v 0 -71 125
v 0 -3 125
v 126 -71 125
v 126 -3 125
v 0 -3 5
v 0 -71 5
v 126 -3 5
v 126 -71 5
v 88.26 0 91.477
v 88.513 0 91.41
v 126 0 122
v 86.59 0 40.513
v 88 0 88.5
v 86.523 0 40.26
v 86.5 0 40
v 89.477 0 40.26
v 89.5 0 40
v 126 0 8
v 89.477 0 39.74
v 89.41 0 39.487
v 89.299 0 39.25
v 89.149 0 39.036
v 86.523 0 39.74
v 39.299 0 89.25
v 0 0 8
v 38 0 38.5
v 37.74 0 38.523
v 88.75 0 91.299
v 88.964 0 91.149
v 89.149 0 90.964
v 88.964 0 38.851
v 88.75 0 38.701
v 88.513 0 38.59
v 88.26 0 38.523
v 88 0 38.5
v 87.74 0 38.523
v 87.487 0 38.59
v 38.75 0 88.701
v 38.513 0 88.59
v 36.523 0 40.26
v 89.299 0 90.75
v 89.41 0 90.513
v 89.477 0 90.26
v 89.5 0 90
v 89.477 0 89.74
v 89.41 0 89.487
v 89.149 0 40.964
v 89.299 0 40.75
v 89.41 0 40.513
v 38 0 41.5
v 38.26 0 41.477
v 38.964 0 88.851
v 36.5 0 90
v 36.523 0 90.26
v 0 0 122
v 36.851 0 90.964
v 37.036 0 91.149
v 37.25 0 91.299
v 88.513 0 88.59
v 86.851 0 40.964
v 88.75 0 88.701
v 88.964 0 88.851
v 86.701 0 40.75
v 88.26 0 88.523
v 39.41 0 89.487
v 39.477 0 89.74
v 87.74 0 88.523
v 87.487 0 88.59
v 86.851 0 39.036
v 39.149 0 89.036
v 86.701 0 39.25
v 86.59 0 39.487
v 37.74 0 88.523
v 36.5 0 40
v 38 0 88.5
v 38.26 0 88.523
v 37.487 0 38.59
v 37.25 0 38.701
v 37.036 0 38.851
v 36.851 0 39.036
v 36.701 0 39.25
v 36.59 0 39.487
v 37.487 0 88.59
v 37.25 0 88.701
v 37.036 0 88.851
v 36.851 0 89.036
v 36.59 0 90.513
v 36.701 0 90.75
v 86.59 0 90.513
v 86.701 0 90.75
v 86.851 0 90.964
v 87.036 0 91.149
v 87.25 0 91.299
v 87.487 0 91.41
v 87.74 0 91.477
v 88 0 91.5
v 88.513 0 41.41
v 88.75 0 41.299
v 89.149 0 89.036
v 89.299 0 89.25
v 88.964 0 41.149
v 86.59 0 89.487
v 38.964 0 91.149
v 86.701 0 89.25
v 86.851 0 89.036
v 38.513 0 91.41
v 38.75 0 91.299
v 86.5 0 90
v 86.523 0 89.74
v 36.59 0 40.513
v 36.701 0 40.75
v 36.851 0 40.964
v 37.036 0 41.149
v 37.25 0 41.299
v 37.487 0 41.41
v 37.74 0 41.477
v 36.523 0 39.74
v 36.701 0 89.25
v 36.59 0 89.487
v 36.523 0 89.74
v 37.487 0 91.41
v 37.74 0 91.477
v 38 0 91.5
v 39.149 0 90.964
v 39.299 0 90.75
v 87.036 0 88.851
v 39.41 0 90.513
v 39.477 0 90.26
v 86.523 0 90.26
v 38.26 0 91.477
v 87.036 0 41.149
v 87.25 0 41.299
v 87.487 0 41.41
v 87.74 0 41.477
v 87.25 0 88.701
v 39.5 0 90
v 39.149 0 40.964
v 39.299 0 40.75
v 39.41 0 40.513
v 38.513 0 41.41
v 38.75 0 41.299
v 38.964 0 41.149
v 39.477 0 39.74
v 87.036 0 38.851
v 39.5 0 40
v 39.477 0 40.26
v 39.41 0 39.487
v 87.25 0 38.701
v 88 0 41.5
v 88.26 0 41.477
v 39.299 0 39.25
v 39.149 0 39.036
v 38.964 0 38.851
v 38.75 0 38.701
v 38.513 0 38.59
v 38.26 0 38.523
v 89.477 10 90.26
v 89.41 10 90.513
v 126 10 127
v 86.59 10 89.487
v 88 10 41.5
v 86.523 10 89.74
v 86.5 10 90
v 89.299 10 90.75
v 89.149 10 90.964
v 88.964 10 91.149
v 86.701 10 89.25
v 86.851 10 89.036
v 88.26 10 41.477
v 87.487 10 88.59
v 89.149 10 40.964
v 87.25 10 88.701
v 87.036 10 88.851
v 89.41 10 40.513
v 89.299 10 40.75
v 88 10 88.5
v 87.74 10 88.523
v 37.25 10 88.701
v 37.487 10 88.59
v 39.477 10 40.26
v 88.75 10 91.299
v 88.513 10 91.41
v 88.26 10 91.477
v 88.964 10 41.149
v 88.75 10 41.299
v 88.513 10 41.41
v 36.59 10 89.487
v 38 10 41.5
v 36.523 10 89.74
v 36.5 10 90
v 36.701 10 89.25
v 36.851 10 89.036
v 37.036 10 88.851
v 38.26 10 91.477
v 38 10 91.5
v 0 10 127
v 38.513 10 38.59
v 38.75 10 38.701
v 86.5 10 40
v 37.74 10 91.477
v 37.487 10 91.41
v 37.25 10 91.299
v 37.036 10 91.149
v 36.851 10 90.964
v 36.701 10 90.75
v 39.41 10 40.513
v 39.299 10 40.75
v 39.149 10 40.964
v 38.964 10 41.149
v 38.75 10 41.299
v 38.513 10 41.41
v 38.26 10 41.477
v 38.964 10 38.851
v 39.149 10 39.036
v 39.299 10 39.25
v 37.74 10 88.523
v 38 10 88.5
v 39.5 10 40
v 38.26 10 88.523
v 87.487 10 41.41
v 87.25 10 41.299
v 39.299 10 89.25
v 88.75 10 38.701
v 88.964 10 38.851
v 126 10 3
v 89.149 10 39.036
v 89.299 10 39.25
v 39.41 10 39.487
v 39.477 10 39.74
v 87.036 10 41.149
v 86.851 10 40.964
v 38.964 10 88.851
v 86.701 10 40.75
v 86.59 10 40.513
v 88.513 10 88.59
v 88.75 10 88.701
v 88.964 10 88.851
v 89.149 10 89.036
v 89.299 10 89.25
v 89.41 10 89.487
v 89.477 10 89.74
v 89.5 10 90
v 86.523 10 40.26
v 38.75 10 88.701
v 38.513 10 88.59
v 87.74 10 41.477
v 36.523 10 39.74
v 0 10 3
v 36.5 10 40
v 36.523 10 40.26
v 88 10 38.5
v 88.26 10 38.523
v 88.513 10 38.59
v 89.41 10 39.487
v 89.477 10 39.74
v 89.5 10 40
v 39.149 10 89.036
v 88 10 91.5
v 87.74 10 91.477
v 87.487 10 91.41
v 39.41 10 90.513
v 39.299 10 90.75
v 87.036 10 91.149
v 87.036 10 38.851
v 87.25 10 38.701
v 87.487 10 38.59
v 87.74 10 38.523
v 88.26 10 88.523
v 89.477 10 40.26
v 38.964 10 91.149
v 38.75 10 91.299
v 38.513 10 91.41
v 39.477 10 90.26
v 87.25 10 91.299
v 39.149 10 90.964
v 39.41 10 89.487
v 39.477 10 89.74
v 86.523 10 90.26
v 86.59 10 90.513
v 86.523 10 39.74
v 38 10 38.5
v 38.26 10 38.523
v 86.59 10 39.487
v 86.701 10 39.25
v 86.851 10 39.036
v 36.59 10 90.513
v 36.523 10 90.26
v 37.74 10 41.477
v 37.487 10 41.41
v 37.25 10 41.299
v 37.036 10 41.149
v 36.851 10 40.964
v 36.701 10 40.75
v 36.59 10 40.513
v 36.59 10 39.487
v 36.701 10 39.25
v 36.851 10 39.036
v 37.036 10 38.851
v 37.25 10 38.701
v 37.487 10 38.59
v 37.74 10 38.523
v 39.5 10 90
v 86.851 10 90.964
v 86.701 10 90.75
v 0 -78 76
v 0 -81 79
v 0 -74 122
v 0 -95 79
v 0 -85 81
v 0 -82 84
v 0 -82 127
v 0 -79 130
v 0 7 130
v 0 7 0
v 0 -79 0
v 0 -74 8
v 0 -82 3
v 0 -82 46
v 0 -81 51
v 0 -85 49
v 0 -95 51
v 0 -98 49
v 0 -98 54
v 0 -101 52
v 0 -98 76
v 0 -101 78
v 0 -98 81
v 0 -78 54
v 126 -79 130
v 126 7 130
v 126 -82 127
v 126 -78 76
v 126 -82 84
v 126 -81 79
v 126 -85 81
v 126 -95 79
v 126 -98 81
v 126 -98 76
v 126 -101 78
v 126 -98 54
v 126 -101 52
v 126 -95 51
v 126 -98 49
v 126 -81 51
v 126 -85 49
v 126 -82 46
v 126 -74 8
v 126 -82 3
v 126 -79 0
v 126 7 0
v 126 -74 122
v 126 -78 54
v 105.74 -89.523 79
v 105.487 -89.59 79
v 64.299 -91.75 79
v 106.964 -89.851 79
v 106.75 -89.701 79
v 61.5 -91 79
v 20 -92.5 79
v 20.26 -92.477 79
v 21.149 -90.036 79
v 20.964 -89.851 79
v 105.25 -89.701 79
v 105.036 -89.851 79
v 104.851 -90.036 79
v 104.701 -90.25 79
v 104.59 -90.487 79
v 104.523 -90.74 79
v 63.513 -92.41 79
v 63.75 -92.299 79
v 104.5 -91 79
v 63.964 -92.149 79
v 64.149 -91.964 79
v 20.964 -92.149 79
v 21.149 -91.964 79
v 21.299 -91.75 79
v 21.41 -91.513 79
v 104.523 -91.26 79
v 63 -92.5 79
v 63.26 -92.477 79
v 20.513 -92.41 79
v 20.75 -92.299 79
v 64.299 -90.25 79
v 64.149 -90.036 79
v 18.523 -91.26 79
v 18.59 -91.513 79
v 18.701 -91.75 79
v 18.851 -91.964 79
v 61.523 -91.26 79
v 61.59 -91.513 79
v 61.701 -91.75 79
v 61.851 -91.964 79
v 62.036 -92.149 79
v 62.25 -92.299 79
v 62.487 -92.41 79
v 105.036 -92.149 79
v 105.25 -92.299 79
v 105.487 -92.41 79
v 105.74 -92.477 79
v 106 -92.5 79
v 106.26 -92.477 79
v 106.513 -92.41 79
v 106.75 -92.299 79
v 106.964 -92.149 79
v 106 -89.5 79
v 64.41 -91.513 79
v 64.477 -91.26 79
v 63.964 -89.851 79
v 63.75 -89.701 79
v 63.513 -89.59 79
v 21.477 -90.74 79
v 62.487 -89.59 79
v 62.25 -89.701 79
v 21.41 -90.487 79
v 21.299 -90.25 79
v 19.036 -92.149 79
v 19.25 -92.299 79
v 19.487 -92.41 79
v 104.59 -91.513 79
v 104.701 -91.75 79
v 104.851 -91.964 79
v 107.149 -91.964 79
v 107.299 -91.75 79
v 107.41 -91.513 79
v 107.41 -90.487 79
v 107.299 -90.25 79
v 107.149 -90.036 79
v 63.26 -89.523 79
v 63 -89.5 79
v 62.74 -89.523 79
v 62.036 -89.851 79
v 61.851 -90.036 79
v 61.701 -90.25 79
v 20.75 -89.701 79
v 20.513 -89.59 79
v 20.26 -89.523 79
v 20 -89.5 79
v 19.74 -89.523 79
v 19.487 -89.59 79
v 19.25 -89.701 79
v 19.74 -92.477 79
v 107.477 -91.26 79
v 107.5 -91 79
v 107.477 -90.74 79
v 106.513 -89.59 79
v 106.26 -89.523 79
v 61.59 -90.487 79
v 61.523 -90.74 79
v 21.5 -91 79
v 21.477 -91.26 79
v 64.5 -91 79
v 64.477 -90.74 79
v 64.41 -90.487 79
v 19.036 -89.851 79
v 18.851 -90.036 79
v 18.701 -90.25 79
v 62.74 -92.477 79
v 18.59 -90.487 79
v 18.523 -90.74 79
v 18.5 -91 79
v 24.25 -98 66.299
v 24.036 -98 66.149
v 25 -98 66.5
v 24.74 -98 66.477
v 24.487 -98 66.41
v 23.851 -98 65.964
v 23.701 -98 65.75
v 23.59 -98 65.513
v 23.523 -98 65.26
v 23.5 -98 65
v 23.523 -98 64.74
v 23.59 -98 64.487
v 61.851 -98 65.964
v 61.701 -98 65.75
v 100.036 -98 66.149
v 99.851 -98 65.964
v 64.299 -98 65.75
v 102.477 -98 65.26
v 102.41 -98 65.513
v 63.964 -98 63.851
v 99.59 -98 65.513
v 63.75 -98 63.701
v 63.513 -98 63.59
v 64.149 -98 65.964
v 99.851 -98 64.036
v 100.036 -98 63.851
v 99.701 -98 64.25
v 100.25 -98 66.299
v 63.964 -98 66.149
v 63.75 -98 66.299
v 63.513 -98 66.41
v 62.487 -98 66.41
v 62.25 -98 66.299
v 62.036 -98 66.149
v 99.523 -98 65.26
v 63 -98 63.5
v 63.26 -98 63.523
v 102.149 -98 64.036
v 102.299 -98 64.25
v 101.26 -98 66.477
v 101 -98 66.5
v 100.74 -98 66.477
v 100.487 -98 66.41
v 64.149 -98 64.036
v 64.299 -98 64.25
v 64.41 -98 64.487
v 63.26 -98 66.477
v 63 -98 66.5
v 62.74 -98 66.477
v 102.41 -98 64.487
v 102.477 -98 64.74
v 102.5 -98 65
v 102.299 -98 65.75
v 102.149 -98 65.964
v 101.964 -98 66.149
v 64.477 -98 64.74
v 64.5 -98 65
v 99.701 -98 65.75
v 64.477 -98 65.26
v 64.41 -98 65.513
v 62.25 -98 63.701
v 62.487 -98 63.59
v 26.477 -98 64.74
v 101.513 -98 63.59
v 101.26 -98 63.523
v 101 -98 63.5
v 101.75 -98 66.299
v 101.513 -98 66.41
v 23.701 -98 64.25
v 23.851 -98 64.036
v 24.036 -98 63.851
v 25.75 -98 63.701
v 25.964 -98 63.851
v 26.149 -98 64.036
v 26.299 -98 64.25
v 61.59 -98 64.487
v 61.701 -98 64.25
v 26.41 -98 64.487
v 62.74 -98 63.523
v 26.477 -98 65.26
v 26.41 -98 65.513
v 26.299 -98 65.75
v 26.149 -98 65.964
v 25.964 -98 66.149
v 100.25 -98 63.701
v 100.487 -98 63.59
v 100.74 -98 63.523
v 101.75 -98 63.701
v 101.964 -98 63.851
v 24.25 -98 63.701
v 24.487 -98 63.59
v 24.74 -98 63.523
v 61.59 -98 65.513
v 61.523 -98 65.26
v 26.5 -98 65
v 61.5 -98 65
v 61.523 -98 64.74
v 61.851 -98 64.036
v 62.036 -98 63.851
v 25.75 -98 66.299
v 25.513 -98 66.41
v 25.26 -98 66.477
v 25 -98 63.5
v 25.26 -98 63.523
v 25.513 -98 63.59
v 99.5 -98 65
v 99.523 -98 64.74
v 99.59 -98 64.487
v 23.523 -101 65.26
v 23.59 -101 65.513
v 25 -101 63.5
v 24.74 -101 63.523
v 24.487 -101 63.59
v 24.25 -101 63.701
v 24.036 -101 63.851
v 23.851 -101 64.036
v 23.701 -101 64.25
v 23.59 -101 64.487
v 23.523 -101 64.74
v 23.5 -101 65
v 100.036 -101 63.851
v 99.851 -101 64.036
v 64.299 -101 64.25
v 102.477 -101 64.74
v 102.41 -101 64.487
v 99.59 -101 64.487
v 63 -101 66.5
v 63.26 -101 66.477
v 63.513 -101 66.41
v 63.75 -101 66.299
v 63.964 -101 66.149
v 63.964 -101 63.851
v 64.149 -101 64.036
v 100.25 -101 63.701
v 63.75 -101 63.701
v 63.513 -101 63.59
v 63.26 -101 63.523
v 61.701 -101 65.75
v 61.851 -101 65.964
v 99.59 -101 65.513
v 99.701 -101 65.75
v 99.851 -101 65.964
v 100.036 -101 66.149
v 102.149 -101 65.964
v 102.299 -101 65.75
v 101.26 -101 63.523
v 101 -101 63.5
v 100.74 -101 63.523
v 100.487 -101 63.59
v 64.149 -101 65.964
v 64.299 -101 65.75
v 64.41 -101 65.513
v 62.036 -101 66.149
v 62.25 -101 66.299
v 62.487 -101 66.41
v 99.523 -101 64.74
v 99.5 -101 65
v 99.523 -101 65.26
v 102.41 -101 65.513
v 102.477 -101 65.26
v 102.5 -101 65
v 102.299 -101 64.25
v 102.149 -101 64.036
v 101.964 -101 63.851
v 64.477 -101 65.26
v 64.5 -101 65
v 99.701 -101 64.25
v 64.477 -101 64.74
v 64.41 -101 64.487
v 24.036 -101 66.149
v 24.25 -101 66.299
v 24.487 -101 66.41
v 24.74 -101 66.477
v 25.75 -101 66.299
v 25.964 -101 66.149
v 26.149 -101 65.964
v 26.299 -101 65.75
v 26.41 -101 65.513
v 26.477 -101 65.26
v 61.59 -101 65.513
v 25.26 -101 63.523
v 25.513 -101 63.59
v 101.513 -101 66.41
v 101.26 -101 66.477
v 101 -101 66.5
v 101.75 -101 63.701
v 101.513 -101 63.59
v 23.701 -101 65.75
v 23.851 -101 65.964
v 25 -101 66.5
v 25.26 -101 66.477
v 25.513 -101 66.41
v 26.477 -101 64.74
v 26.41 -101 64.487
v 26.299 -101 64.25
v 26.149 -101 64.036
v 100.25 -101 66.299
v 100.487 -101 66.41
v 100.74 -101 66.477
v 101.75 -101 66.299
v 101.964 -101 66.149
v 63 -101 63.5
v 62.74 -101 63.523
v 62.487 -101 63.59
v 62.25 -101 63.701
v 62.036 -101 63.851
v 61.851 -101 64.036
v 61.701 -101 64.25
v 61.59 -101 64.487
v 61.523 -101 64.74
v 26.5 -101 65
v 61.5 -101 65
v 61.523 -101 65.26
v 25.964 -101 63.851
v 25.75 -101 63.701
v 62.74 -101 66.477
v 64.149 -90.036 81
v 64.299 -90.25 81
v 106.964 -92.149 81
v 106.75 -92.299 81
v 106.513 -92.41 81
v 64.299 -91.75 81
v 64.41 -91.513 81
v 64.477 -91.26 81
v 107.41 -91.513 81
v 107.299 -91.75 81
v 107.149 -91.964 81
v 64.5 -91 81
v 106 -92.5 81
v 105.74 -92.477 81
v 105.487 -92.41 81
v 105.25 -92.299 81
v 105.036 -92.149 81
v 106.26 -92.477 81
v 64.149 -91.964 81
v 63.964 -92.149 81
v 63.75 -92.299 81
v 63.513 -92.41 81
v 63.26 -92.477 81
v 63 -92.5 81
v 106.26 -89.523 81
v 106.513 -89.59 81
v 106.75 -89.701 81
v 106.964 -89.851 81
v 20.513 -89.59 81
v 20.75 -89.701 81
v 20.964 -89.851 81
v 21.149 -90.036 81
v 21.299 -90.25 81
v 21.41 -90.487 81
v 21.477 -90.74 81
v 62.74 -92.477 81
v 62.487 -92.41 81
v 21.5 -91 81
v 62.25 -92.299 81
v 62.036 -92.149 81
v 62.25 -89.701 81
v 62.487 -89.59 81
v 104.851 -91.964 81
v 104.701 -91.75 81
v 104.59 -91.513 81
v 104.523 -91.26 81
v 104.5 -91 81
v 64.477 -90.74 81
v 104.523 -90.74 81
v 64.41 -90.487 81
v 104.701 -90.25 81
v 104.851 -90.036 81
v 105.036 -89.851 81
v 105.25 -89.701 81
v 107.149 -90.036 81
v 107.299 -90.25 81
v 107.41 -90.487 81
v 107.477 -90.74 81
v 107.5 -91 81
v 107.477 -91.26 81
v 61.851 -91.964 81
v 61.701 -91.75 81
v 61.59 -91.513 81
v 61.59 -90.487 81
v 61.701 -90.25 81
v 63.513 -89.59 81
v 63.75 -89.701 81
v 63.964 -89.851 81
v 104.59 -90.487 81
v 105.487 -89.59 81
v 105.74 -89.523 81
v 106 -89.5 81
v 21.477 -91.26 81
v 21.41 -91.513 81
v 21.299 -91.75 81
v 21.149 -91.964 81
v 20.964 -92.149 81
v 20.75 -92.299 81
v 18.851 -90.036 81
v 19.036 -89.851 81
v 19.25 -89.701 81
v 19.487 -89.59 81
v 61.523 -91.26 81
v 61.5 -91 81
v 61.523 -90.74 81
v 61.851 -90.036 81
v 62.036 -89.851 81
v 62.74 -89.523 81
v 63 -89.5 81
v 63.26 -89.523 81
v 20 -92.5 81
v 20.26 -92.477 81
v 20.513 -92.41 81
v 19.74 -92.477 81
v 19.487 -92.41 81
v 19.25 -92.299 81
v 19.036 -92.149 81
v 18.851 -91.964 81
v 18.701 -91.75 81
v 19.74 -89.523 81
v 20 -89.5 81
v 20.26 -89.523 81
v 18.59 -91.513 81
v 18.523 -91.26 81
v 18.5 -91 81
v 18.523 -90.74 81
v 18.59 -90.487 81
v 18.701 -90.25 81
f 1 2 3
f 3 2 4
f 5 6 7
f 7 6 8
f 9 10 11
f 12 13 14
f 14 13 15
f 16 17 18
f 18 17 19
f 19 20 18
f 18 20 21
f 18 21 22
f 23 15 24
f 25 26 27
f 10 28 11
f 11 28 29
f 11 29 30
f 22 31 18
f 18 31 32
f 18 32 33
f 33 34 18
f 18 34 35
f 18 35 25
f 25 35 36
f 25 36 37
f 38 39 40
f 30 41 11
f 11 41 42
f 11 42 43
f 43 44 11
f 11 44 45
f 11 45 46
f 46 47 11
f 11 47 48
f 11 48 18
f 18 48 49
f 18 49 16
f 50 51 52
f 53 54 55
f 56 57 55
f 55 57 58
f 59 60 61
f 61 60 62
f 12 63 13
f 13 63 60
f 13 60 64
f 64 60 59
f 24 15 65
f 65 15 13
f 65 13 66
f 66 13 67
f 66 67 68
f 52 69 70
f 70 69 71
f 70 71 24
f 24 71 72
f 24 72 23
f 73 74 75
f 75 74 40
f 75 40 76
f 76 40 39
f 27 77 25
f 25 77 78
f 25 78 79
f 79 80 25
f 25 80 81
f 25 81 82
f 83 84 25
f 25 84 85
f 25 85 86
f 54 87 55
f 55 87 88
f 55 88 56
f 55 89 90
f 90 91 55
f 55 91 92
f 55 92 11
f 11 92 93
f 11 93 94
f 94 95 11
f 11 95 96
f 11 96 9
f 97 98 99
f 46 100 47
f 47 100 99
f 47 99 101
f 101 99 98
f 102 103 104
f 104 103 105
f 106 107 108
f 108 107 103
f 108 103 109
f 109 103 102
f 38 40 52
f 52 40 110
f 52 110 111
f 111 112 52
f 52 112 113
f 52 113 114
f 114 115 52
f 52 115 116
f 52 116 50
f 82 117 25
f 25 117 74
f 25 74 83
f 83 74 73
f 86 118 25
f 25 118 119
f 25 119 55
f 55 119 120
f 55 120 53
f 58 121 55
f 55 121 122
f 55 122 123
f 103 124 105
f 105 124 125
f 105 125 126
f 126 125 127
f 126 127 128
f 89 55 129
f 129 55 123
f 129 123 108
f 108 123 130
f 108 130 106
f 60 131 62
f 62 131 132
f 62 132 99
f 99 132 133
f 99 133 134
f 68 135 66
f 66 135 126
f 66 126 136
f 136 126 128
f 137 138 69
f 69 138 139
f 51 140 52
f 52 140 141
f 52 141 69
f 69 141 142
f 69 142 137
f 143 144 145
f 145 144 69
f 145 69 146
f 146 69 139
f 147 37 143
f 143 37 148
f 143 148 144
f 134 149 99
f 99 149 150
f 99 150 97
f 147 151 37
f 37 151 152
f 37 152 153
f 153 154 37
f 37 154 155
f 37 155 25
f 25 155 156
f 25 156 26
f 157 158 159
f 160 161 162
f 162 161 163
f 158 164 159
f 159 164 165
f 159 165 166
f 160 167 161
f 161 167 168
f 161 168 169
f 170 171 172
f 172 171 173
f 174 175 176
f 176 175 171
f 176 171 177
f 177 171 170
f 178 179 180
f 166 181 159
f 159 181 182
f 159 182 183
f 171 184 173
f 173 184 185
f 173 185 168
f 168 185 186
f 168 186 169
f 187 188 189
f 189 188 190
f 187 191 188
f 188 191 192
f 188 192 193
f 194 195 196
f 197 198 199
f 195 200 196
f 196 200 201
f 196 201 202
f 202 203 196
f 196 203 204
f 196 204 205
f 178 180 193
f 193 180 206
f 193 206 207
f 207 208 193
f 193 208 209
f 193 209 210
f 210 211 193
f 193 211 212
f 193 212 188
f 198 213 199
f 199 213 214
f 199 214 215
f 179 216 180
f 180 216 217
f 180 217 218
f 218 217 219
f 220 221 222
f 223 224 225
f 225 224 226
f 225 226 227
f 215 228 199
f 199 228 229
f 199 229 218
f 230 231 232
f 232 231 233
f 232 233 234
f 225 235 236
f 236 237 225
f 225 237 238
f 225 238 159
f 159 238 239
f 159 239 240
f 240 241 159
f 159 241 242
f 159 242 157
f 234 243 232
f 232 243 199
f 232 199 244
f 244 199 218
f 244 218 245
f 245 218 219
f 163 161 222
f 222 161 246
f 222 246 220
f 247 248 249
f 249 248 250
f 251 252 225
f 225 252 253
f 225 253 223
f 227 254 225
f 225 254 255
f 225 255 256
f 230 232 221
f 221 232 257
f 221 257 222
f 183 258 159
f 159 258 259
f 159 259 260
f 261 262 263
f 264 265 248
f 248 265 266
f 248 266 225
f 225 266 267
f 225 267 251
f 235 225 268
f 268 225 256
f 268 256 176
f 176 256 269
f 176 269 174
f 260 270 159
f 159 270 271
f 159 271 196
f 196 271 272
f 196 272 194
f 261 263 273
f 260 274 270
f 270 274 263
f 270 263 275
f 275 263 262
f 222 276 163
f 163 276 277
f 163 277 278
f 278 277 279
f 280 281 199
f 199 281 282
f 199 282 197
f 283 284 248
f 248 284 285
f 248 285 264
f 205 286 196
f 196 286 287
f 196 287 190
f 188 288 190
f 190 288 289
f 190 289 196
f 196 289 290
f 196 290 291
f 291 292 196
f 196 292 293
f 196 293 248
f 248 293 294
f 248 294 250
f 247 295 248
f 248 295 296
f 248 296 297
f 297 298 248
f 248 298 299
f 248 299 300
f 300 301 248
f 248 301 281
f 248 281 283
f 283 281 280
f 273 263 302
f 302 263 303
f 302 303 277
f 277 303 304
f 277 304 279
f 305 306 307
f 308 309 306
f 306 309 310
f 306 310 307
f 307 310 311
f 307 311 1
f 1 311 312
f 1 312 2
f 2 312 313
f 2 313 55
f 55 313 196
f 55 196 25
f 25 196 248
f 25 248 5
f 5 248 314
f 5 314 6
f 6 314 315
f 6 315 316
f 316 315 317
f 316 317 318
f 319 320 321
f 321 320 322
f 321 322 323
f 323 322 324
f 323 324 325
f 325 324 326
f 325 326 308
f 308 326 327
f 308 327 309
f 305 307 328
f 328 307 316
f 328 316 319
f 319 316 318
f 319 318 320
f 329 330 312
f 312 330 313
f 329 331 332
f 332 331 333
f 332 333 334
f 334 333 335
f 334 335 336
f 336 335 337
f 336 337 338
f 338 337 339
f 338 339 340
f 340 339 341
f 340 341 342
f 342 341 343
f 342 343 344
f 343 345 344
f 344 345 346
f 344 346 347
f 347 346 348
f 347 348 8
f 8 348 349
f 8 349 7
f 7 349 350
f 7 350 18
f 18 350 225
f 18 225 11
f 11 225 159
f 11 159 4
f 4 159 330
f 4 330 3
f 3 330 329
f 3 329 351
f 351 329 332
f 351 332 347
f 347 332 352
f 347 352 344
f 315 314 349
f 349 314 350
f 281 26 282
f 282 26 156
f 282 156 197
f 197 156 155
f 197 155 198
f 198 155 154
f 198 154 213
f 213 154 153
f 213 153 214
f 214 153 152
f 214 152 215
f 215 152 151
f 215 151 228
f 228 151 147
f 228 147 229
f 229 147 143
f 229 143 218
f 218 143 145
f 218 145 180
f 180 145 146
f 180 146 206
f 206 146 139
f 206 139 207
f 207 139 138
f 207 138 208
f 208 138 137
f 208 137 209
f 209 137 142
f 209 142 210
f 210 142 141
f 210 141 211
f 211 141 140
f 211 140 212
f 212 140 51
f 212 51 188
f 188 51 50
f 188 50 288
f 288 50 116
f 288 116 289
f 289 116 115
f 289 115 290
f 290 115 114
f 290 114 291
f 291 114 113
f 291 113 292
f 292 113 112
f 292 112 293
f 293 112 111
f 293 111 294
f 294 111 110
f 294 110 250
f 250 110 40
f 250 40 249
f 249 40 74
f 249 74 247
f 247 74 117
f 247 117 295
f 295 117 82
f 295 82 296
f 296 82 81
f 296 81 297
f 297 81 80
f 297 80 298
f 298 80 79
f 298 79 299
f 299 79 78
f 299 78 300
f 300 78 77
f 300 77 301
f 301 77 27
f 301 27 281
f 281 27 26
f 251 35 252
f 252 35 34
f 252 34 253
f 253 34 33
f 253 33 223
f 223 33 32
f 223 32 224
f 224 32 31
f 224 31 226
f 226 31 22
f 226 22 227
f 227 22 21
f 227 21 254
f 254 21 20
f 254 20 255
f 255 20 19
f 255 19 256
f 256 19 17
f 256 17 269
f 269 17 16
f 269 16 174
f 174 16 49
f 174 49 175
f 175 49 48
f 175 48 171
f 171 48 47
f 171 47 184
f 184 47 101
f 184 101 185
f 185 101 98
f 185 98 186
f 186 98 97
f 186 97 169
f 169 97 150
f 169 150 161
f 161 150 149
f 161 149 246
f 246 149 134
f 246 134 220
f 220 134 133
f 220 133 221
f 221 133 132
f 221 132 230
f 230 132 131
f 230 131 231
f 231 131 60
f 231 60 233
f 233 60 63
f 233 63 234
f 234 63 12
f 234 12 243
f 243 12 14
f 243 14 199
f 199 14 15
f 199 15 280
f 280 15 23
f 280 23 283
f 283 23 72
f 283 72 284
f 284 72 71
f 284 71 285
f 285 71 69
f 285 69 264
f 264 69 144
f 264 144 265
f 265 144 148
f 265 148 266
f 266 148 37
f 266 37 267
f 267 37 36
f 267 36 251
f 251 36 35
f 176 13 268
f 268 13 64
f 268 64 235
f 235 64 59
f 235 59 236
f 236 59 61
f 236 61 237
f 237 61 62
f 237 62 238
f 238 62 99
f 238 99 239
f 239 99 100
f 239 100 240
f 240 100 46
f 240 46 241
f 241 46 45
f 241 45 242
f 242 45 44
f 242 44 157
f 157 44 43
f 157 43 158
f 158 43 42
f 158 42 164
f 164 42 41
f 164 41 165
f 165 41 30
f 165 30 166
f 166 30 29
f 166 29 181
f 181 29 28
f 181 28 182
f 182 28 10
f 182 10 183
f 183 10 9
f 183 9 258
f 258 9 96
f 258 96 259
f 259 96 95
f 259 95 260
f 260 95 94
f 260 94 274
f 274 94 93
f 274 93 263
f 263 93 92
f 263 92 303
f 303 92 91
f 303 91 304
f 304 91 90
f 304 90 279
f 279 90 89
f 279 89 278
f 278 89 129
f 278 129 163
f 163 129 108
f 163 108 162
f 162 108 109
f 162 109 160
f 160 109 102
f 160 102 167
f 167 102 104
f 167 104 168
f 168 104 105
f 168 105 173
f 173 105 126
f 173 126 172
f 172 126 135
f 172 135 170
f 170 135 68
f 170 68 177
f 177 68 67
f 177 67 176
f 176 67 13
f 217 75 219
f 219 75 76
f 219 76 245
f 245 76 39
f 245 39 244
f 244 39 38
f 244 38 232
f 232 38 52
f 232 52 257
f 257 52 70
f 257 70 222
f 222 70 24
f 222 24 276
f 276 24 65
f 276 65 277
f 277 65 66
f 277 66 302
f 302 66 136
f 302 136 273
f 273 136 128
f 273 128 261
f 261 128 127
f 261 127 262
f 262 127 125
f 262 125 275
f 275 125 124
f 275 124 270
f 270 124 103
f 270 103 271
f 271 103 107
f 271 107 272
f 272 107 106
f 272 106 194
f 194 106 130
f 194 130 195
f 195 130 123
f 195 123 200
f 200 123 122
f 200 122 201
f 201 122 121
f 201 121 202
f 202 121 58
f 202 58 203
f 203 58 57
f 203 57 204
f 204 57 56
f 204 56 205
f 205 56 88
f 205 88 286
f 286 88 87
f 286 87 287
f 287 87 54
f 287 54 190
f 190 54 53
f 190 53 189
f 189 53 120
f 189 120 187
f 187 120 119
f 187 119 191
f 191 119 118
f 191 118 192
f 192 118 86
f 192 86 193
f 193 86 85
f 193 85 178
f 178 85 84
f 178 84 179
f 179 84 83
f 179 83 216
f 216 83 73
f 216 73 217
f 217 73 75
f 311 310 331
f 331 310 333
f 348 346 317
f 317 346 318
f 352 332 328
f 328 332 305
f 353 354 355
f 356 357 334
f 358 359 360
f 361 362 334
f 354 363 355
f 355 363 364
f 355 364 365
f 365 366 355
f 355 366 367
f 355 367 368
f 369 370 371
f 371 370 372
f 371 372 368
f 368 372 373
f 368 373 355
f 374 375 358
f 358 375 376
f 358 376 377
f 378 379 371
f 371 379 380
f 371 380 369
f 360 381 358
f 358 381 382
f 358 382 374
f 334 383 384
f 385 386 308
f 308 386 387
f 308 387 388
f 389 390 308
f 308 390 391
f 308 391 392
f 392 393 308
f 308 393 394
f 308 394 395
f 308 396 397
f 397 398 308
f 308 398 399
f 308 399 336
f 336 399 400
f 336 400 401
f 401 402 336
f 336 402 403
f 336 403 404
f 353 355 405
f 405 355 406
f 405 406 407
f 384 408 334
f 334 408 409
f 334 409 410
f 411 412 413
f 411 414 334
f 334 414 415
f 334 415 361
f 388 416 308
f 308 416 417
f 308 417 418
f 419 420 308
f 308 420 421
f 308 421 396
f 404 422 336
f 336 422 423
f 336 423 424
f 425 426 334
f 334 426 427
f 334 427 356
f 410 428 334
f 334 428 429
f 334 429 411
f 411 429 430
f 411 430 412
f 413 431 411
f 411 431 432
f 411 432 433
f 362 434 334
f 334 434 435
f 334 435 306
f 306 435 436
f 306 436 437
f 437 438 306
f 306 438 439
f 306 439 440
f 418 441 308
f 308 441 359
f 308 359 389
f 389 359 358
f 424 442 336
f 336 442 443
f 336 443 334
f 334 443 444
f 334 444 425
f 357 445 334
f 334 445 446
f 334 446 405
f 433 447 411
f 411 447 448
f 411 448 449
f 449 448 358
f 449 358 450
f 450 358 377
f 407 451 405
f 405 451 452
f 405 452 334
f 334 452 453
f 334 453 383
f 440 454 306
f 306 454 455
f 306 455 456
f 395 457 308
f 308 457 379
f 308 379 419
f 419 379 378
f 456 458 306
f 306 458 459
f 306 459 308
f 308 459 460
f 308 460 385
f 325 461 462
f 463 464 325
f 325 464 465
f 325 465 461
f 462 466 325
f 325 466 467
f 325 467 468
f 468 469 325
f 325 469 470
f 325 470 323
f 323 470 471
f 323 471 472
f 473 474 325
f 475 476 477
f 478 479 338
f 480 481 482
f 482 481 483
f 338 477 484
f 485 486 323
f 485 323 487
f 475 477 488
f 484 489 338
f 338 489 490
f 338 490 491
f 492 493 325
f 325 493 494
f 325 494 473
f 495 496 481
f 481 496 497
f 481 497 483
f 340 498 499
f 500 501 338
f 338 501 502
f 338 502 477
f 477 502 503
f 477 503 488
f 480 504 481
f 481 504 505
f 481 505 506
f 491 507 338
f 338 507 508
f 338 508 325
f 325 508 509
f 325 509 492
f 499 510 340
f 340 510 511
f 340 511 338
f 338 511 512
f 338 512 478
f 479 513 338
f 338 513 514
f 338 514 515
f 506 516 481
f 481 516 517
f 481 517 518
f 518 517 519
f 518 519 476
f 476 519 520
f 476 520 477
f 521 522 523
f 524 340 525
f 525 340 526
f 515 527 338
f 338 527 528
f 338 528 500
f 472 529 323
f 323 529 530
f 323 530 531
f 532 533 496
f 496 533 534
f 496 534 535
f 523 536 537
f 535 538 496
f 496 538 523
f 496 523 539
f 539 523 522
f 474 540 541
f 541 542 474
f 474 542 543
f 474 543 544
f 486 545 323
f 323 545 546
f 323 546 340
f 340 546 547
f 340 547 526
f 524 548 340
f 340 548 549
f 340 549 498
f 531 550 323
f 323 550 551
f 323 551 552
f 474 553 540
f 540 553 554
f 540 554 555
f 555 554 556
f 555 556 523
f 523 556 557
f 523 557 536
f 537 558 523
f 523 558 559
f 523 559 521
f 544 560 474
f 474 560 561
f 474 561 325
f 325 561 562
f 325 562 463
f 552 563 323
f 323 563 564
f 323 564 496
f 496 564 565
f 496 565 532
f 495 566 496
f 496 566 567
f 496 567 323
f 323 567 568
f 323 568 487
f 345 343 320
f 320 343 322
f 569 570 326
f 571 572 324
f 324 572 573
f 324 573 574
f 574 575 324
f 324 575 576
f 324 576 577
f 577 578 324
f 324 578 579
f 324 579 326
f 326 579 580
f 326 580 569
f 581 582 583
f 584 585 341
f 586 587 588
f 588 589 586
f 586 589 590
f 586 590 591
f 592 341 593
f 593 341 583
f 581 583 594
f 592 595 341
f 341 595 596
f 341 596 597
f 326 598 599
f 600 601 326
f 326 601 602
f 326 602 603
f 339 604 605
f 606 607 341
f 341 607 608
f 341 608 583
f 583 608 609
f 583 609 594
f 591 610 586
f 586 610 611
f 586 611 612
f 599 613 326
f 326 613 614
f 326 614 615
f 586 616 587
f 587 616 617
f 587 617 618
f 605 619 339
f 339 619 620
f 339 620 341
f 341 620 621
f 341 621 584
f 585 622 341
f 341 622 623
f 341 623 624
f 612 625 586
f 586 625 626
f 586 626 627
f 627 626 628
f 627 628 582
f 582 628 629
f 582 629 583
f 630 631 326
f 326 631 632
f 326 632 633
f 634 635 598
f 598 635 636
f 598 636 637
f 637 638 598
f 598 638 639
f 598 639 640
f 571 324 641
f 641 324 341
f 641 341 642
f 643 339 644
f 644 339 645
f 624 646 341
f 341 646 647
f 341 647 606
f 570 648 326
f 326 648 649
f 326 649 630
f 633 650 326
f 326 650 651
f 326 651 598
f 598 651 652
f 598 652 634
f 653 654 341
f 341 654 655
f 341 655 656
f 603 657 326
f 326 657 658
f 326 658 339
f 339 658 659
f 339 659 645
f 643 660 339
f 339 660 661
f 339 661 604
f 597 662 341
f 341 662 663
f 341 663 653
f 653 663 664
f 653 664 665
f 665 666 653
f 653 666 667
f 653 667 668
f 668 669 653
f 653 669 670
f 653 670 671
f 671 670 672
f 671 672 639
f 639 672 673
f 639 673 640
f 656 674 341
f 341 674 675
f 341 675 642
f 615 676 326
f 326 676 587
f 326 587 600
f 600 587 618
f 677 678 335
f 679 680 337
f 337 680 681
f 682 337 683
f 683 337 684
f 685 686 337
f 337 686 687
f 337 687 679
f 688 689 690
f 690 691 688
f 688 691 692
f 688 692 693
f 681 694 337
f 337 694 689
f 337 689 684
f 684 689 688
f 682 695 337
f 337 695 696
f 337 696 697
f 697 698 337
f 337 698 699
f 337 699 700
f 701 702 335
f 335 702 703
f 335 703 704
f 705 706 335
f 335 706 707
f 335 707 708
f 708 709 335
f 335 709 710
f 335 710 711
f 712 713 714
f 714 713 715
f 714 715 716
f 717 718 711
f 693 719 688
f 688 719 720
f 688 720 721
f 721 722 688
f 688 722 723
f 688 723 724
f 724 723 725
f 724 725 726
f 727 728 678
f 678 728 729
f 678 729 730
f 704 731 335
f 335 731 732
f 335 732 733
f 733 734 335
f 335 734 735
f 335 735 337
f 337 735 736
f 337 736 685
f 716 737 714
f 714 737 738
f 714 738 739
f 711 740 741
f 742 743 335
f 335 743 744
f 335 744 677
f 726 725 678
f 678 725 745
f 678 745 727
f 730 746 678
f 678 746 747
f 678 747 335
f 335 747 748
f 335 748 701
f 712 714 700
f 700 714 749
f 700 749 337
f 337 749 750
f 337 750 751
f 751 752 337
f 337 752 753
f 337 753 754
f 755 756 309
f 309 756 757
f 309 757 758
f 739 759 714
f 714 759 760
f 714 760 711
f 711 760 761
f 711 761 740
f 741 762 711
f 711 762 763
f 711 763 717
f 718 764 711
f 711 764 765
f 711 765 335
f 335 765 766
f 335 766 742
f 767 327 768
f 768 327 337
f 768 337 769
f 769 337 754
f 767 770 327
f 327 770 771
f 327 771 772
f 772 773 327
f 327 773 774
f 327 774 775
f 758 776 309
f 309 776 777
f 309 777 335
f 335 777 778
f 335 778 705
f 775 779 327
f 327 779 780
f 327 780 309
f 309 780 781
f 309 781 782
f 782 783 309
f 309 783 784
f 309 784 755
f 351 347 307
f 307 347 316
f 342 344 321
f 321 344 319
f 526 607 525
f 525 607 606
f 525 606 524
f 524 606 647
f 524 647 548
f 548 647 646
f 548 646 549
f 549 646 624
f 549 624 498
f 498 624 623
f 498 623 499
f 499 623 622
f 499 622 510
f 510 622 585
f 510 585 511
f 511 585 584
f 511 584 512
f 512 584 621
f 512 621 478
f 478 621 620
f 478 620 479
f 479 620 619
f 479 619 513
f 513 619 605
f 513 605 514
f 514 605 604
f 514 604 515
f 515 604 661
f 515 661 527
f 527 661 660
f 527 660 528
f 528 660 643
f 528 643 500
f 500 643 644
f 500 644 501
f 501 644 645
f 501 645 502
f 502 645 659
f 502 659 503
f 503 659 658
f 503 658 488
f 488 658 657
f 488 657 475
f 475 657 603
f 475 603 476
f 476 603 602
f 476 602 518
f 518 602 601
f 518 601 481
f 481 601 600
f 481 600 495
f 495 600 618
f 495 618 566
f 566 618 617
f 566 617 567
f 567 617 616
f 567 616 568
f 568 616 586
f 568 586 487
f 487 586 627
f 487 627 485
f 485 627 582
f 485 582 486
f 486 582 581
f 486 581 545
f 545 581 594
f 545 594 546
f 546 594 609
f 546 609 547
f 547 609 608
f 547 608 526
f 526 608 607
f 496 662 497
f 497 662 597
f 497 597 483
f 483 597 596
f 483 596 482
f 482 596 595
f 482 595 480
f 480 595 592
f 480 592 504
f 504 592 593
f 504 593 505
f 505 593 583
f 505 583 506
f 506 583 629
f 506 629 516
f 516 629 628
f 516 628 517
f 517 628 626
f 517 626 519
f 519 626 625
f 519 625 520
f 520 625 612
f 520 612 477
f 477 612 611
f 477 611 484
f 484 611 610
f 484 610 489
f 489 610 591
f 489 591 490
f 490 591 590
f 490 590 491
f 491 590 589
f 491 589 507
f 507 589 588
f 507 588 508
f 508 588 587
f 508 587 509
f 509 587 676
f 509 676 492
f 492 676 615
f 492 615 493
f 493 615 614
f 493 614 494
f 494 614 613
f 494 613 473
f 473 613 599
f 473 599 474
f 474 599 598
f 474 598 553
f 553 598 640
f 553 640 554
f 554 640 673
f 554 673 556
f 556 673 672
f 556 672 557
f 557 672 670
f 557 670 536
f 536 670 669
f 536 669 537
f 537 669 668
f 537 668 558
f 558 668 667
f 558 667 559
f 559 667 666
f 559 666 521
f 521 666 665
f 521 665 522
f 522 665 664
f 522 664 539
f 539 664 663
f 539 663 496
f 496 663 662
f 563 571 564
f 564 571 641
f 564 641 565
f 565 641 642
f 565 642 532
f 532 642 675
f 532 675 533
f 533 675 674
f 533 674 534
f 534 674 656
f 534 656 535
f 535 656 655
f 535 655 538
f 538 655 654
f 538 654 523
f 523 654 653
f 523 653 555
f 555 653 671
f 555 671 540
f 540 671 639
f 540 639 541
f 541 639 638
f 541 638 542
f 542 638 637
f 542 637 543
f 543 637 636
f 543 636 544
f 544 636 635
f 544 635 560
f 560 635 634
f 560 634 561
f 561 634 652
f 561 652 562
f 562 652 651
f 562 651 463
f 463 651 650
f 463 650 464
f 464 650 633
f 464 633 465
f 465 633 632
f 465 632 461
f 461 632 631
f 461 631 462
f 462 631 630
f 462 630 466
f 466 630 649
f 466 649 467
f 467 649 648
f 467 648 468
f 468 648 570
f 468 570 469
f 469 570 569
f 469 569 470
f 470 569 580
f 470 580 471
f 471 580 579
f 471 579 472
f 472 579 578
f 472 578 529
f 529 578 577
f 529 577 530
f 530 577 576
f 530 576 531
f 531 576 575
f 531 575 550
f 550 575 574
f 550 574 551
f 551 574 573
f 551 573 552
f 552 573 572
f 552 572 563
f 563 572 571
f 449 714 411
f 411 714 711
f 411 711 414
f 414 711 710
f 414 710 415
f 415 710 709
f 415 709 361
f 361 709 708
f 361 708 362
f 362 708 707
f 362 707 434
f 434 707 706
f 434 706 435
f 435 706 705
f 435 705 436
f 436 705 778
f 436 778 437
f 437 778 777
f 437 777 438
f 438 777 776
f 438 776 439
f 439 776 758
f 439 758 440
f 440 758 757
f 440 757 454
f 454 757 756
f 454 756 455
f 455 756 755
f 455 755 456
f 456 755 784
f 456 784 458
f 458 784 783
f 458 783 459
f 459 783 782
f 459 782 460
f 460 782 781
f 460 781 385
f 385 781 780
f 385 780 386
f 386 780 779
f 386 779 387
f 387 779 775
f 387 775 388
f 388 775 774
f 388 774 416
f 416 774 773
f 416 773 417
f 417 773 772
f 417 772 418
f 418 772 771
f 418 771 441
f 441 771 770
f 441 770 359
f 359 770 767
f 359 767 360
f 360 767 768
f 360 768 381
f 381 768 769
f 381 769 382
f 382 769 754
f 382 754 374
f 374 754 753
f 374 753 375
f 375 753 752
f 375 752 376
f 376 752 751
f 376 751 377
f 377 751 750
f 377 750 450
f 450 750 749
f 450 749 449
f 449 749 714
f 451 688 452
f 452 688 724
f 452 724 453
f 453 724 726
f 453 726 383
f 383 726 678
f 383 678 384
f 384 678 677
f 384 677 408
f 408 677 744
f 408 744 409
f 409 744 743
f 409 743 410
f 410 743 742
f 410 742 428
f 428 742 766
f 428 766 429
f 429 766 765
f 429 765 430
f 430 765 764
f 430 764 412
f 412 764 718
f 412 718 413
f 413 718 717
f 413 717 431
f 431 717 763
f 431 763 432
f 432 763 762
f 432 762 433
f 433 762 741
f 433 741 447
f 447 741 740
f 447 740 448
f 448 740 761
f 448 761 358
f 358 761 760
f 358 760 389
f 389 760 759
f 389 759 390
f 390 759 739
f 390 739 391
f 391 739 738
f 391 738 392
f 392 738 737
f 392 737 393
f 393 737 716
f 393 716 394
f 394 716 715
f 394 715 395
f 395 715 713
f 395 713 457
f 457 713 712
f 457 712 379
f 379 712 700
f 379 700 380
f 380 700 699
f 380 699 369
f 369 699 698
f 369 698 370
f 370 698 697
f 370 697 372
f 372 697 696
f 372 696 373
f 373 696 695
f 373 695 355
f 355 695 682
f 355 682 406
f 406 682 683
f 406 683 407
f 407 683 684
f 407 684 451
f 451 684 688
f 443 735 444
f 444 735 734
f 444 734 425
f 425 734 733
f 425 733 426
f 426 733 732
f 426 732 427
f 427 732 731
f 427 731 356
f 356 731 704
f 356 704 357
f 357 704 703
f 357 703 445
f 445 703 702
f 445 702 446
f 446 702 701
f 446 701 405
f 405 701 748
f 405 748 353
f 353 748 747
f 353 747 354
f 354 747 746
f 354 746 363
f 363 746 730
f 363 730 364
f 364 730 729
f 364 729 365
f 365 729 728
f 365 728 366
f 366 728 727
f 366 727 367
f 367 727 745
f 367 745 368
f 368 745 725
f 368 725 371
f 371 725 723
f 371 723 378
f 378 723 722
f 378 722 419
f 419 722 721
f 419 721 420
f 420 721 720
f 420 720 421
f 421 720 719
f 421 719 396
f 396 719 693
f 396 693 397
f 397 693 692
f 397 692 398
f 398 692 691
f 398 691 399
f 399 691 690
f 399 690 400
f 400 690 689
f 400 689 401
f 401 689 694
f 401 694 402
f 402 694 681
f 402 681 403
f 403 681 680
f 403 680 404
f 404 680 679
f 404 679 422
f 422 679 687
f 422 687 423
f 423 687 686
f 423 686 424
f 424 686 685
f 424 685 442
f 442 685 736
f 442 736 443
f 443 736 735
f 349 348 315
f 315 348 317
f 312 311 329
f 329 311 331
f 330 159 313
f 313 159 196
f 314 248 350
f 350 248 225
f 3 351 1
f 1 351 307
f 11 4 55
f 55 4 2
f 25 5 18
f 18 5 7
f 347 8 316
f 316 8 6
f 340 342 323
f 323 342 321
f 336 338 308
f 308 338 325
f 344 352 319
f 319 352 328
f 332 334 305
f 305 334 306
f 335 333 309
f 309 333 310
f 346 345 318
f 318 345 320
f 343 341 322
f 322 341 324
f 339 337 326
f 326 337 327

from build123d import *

# Parameters (mm, degrees)
SKETCH1_W           = 126
SKETCH1_H           = 130
SKETCH1_R           = 1.5
BOSS_EXTRUDE1_DEPTH = 10
SKETCH3_W           = 126
SKETCH3_H           = 5
BOSS_EXTRUDE2_DEPTH = 82
BOSS_EXTRUDE4_DEPTH = 126
SKETCH5_R           = 1.5
CUT_EXTRUDE1_DEPTH  = 3
SKETCH6_R           = 1.5
CUT_EXTRUDE2_DEPTH  = 2
CHAMFER1_SIZE       = 3


with BuildPart() as part:
    # Sketch1 → Boss-Extrude1 (new body)
    with BuildSketch(Plane(origin=(0, 0, 0), x_dir=(1, 0, 0), z_dir=(0, 1, 0))):
        with Locations((63, -65)):
            Rectangle(SKETCH1_W, SKETCH1_H)
        with Locations(Location((38, -40, 0), (0, 0, 270))):
            Circle(SKETCH1_R, mode=Mode.SUBTRACT)
        with Locations(Location((88, -40, 0), (0, 0, 270))):
            Circle(SKETCH1_R, mode=Mode.SUBTRACT)
        with Locations(Location((88, -90, 0), (0, 0, 270))):
            Circle(SKETCH1_R, mode=Mode.SUBTRACT)
        with Locations(Location((38, -90, 0), (0, 0, 270))):
            Circle(SKETCH1_R, mode=Mode.SUBTRACT)
    extrude(amount=BOSS_EXTRUDE1_DEPTH)

    # Sketch3 → Boss-Extrude2 (add)
    with BuildSketch(Plane.XZ):
        with Locations((63, 127.5)):
            Rectangle(SKETCH3_W, SKETCH3_H)
        with Locations((63, 2.5)):
            Rectangle(SKETCH3_W, SKETCH3_H)
    extrude(amount=BOSS_EXTRUDE2_DEPTH)

    # Sketch4 → Boss-Extrude4 (add)
    with BuildSketch(Plane(origin=(126, 0, 0), x_dir=(0, 0, -1), z_dir=(1, 0, 0))):
        Polygon((-125, -74), (-125, -82), (-81, -82), (-81, -76), (-65, -76), (-65, -74), align=None)
        Polygon((-81, -76), (-81, -82), (-79, -82), (-79, -78), (-65, -78), (-65, -76), align=None)
        Polygon((-79, -82), (-81, -82), (-81, -101), (-49, -101), (-49, -82), (-51, -82), (-51, -98), (-79, -98), align=None)
        Polygon((-49, -76), (-65, -76), (-65, -78), (-51, -78), (-51, -82), (-49, -82), align=None)
        Polygon((-5, -74), (-65, -74), (-65, -76), (-49, -76), (-49, -82), (-5, -82), align=None)
    extrude(amount=-BOSS_EXTRUDE4_DEPTH)

    # Sketch5 → Cut-Extrude1 (cut)
    with BuildSketch(Plane.XZ.offset(101)):
        with Locations(Location((25, 65, 0), (0, 0, 270))):
            Circle(SKETCH5_R)
        with Locations(Location((63, 65, 0), (0, 0, 270))):
            Circle(SKETCH5_R)
        with Locations(Location((101, 65, 0), (0, 0, 270))):
            Circle(SKETCH5_R)
    extrude(amount=-CUT_EXTRUDE1_DEPTH, mode=Mode.SUBTRACT)

    # Sketch6 → Cut-Extrude2 (cut)
    with BuildSketch(Plane.XY.offset(81)):
        with Locations((106, -91)):
            Circle(SKETCH6_R)
        with Locations((63, -91)):
            Circle(SKETCH6_R)
        with Locations((20, -91)):
            Circle(SKETCH6_R)
    extrude(amount=-CUT_EXTRUDE2_DEPTH, mode=Mode.SUBTRACT)

    # Chamfer1
    chamfer1_edges = [part.edges().sort_by_distance(p)[0] for p in [
        (63, 10, 0),
        (63, 0, 125),
        (63, -82, 130),
        (63, 0, 5),
        (63, -82, 0),
        (63, -78, 51),
        (63, -78, 79),
        (63, -98, 79),
        (63, -82, 49),
        (63, -101, 49),
        (63, -101, 81),
        (63, -82, 81),
        (63, -74, 125),
        (63, -74, 5),
        (63, -98, 51),
        (63, 10, 130),
    ]]
    chamfer(chamfer1_edges, length=CHAMFER1_SIZE)


solid = part.part
